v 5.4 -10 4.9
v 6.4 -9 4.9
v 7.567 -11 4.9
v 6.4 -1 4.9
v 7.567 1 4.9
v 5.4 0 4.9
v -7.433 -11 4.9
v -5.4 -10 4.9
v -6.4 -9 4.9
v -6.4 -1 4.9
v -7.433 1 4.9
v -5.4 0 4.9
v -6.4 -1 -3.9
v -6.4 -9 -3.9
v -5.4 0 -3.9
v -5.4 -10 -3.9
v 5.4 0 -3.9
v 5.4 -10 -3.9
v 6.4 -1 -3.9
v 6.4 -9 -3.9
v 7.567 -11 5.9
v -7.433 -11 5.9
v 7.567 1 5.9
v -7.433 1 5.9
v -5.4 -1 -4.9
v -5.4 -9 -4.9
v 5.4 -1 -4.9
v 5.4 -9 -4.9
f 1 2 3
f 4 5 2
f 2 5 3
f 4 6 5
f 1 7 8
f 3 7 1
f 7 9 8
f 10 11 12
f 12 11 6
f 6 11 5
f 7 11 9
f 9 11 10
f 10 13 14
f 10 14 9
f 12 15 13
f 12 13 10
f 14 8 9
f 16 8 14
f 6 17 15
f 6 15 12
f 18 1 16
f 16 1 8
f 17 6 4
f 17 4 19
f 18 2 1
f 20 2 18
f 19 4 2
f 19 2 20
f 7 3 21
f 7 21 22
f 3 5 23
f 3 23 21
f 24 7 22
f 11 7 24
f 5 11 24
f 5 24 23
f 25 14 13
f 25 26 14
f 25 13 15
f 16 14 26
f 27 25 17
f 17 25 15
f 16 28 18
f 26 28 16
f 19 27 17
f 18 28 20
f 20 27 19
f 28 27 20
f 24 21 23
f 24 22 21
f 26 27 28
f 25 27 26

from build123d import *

# Parameters (mm, degrees)
SKETCH_W     = 12.8
SKETCH_H     = 9.8
PAD_DEPTH    = 10
SKETCH001_W  = 15
SKETCH001_H  = 12
PAD001_DEPTH = 1
CHAMFER_SIZE = 1


with BuildPart() as part:
    # Sketch → Pad (new body)
    with BuildSketch(Plane.XZ):
        Rectangle(SKETCH_W, SKETCH_H)
    extrude(amount=PAD_DEPTH)

    # Sketch001 (on Face1 of Pad) → Pad001 (join)
    with BuildSketch(Plane(origin=(0, 0, 4.9), x_dir=(-1, 0, 0), z_dir=(0, 0, 1))):
        with Locations((-0.066966, 5)):
            Rectangle(SKETCH001_W, SKETCH001_H)
    extrude(amount=PAD001_DEPTH)

    # Chamfer
    chamfer_edges = [part.edges().sort_by_distance(p)[0] for p in [
        (-6.4, -10, 0),
        (0, -10, -4.9),
        (-6.4, -5, -4.9),
        (-6.4, 0, 0),
        (6.4, -10, 0),
        (6.4, -5, -4.9),
        (6.4, 0, 0),
        (0, 0, -4.9),
    ]]
    chamfer(chamfer_edges, length=CHAMFER_SIZE)


solid = part.part
